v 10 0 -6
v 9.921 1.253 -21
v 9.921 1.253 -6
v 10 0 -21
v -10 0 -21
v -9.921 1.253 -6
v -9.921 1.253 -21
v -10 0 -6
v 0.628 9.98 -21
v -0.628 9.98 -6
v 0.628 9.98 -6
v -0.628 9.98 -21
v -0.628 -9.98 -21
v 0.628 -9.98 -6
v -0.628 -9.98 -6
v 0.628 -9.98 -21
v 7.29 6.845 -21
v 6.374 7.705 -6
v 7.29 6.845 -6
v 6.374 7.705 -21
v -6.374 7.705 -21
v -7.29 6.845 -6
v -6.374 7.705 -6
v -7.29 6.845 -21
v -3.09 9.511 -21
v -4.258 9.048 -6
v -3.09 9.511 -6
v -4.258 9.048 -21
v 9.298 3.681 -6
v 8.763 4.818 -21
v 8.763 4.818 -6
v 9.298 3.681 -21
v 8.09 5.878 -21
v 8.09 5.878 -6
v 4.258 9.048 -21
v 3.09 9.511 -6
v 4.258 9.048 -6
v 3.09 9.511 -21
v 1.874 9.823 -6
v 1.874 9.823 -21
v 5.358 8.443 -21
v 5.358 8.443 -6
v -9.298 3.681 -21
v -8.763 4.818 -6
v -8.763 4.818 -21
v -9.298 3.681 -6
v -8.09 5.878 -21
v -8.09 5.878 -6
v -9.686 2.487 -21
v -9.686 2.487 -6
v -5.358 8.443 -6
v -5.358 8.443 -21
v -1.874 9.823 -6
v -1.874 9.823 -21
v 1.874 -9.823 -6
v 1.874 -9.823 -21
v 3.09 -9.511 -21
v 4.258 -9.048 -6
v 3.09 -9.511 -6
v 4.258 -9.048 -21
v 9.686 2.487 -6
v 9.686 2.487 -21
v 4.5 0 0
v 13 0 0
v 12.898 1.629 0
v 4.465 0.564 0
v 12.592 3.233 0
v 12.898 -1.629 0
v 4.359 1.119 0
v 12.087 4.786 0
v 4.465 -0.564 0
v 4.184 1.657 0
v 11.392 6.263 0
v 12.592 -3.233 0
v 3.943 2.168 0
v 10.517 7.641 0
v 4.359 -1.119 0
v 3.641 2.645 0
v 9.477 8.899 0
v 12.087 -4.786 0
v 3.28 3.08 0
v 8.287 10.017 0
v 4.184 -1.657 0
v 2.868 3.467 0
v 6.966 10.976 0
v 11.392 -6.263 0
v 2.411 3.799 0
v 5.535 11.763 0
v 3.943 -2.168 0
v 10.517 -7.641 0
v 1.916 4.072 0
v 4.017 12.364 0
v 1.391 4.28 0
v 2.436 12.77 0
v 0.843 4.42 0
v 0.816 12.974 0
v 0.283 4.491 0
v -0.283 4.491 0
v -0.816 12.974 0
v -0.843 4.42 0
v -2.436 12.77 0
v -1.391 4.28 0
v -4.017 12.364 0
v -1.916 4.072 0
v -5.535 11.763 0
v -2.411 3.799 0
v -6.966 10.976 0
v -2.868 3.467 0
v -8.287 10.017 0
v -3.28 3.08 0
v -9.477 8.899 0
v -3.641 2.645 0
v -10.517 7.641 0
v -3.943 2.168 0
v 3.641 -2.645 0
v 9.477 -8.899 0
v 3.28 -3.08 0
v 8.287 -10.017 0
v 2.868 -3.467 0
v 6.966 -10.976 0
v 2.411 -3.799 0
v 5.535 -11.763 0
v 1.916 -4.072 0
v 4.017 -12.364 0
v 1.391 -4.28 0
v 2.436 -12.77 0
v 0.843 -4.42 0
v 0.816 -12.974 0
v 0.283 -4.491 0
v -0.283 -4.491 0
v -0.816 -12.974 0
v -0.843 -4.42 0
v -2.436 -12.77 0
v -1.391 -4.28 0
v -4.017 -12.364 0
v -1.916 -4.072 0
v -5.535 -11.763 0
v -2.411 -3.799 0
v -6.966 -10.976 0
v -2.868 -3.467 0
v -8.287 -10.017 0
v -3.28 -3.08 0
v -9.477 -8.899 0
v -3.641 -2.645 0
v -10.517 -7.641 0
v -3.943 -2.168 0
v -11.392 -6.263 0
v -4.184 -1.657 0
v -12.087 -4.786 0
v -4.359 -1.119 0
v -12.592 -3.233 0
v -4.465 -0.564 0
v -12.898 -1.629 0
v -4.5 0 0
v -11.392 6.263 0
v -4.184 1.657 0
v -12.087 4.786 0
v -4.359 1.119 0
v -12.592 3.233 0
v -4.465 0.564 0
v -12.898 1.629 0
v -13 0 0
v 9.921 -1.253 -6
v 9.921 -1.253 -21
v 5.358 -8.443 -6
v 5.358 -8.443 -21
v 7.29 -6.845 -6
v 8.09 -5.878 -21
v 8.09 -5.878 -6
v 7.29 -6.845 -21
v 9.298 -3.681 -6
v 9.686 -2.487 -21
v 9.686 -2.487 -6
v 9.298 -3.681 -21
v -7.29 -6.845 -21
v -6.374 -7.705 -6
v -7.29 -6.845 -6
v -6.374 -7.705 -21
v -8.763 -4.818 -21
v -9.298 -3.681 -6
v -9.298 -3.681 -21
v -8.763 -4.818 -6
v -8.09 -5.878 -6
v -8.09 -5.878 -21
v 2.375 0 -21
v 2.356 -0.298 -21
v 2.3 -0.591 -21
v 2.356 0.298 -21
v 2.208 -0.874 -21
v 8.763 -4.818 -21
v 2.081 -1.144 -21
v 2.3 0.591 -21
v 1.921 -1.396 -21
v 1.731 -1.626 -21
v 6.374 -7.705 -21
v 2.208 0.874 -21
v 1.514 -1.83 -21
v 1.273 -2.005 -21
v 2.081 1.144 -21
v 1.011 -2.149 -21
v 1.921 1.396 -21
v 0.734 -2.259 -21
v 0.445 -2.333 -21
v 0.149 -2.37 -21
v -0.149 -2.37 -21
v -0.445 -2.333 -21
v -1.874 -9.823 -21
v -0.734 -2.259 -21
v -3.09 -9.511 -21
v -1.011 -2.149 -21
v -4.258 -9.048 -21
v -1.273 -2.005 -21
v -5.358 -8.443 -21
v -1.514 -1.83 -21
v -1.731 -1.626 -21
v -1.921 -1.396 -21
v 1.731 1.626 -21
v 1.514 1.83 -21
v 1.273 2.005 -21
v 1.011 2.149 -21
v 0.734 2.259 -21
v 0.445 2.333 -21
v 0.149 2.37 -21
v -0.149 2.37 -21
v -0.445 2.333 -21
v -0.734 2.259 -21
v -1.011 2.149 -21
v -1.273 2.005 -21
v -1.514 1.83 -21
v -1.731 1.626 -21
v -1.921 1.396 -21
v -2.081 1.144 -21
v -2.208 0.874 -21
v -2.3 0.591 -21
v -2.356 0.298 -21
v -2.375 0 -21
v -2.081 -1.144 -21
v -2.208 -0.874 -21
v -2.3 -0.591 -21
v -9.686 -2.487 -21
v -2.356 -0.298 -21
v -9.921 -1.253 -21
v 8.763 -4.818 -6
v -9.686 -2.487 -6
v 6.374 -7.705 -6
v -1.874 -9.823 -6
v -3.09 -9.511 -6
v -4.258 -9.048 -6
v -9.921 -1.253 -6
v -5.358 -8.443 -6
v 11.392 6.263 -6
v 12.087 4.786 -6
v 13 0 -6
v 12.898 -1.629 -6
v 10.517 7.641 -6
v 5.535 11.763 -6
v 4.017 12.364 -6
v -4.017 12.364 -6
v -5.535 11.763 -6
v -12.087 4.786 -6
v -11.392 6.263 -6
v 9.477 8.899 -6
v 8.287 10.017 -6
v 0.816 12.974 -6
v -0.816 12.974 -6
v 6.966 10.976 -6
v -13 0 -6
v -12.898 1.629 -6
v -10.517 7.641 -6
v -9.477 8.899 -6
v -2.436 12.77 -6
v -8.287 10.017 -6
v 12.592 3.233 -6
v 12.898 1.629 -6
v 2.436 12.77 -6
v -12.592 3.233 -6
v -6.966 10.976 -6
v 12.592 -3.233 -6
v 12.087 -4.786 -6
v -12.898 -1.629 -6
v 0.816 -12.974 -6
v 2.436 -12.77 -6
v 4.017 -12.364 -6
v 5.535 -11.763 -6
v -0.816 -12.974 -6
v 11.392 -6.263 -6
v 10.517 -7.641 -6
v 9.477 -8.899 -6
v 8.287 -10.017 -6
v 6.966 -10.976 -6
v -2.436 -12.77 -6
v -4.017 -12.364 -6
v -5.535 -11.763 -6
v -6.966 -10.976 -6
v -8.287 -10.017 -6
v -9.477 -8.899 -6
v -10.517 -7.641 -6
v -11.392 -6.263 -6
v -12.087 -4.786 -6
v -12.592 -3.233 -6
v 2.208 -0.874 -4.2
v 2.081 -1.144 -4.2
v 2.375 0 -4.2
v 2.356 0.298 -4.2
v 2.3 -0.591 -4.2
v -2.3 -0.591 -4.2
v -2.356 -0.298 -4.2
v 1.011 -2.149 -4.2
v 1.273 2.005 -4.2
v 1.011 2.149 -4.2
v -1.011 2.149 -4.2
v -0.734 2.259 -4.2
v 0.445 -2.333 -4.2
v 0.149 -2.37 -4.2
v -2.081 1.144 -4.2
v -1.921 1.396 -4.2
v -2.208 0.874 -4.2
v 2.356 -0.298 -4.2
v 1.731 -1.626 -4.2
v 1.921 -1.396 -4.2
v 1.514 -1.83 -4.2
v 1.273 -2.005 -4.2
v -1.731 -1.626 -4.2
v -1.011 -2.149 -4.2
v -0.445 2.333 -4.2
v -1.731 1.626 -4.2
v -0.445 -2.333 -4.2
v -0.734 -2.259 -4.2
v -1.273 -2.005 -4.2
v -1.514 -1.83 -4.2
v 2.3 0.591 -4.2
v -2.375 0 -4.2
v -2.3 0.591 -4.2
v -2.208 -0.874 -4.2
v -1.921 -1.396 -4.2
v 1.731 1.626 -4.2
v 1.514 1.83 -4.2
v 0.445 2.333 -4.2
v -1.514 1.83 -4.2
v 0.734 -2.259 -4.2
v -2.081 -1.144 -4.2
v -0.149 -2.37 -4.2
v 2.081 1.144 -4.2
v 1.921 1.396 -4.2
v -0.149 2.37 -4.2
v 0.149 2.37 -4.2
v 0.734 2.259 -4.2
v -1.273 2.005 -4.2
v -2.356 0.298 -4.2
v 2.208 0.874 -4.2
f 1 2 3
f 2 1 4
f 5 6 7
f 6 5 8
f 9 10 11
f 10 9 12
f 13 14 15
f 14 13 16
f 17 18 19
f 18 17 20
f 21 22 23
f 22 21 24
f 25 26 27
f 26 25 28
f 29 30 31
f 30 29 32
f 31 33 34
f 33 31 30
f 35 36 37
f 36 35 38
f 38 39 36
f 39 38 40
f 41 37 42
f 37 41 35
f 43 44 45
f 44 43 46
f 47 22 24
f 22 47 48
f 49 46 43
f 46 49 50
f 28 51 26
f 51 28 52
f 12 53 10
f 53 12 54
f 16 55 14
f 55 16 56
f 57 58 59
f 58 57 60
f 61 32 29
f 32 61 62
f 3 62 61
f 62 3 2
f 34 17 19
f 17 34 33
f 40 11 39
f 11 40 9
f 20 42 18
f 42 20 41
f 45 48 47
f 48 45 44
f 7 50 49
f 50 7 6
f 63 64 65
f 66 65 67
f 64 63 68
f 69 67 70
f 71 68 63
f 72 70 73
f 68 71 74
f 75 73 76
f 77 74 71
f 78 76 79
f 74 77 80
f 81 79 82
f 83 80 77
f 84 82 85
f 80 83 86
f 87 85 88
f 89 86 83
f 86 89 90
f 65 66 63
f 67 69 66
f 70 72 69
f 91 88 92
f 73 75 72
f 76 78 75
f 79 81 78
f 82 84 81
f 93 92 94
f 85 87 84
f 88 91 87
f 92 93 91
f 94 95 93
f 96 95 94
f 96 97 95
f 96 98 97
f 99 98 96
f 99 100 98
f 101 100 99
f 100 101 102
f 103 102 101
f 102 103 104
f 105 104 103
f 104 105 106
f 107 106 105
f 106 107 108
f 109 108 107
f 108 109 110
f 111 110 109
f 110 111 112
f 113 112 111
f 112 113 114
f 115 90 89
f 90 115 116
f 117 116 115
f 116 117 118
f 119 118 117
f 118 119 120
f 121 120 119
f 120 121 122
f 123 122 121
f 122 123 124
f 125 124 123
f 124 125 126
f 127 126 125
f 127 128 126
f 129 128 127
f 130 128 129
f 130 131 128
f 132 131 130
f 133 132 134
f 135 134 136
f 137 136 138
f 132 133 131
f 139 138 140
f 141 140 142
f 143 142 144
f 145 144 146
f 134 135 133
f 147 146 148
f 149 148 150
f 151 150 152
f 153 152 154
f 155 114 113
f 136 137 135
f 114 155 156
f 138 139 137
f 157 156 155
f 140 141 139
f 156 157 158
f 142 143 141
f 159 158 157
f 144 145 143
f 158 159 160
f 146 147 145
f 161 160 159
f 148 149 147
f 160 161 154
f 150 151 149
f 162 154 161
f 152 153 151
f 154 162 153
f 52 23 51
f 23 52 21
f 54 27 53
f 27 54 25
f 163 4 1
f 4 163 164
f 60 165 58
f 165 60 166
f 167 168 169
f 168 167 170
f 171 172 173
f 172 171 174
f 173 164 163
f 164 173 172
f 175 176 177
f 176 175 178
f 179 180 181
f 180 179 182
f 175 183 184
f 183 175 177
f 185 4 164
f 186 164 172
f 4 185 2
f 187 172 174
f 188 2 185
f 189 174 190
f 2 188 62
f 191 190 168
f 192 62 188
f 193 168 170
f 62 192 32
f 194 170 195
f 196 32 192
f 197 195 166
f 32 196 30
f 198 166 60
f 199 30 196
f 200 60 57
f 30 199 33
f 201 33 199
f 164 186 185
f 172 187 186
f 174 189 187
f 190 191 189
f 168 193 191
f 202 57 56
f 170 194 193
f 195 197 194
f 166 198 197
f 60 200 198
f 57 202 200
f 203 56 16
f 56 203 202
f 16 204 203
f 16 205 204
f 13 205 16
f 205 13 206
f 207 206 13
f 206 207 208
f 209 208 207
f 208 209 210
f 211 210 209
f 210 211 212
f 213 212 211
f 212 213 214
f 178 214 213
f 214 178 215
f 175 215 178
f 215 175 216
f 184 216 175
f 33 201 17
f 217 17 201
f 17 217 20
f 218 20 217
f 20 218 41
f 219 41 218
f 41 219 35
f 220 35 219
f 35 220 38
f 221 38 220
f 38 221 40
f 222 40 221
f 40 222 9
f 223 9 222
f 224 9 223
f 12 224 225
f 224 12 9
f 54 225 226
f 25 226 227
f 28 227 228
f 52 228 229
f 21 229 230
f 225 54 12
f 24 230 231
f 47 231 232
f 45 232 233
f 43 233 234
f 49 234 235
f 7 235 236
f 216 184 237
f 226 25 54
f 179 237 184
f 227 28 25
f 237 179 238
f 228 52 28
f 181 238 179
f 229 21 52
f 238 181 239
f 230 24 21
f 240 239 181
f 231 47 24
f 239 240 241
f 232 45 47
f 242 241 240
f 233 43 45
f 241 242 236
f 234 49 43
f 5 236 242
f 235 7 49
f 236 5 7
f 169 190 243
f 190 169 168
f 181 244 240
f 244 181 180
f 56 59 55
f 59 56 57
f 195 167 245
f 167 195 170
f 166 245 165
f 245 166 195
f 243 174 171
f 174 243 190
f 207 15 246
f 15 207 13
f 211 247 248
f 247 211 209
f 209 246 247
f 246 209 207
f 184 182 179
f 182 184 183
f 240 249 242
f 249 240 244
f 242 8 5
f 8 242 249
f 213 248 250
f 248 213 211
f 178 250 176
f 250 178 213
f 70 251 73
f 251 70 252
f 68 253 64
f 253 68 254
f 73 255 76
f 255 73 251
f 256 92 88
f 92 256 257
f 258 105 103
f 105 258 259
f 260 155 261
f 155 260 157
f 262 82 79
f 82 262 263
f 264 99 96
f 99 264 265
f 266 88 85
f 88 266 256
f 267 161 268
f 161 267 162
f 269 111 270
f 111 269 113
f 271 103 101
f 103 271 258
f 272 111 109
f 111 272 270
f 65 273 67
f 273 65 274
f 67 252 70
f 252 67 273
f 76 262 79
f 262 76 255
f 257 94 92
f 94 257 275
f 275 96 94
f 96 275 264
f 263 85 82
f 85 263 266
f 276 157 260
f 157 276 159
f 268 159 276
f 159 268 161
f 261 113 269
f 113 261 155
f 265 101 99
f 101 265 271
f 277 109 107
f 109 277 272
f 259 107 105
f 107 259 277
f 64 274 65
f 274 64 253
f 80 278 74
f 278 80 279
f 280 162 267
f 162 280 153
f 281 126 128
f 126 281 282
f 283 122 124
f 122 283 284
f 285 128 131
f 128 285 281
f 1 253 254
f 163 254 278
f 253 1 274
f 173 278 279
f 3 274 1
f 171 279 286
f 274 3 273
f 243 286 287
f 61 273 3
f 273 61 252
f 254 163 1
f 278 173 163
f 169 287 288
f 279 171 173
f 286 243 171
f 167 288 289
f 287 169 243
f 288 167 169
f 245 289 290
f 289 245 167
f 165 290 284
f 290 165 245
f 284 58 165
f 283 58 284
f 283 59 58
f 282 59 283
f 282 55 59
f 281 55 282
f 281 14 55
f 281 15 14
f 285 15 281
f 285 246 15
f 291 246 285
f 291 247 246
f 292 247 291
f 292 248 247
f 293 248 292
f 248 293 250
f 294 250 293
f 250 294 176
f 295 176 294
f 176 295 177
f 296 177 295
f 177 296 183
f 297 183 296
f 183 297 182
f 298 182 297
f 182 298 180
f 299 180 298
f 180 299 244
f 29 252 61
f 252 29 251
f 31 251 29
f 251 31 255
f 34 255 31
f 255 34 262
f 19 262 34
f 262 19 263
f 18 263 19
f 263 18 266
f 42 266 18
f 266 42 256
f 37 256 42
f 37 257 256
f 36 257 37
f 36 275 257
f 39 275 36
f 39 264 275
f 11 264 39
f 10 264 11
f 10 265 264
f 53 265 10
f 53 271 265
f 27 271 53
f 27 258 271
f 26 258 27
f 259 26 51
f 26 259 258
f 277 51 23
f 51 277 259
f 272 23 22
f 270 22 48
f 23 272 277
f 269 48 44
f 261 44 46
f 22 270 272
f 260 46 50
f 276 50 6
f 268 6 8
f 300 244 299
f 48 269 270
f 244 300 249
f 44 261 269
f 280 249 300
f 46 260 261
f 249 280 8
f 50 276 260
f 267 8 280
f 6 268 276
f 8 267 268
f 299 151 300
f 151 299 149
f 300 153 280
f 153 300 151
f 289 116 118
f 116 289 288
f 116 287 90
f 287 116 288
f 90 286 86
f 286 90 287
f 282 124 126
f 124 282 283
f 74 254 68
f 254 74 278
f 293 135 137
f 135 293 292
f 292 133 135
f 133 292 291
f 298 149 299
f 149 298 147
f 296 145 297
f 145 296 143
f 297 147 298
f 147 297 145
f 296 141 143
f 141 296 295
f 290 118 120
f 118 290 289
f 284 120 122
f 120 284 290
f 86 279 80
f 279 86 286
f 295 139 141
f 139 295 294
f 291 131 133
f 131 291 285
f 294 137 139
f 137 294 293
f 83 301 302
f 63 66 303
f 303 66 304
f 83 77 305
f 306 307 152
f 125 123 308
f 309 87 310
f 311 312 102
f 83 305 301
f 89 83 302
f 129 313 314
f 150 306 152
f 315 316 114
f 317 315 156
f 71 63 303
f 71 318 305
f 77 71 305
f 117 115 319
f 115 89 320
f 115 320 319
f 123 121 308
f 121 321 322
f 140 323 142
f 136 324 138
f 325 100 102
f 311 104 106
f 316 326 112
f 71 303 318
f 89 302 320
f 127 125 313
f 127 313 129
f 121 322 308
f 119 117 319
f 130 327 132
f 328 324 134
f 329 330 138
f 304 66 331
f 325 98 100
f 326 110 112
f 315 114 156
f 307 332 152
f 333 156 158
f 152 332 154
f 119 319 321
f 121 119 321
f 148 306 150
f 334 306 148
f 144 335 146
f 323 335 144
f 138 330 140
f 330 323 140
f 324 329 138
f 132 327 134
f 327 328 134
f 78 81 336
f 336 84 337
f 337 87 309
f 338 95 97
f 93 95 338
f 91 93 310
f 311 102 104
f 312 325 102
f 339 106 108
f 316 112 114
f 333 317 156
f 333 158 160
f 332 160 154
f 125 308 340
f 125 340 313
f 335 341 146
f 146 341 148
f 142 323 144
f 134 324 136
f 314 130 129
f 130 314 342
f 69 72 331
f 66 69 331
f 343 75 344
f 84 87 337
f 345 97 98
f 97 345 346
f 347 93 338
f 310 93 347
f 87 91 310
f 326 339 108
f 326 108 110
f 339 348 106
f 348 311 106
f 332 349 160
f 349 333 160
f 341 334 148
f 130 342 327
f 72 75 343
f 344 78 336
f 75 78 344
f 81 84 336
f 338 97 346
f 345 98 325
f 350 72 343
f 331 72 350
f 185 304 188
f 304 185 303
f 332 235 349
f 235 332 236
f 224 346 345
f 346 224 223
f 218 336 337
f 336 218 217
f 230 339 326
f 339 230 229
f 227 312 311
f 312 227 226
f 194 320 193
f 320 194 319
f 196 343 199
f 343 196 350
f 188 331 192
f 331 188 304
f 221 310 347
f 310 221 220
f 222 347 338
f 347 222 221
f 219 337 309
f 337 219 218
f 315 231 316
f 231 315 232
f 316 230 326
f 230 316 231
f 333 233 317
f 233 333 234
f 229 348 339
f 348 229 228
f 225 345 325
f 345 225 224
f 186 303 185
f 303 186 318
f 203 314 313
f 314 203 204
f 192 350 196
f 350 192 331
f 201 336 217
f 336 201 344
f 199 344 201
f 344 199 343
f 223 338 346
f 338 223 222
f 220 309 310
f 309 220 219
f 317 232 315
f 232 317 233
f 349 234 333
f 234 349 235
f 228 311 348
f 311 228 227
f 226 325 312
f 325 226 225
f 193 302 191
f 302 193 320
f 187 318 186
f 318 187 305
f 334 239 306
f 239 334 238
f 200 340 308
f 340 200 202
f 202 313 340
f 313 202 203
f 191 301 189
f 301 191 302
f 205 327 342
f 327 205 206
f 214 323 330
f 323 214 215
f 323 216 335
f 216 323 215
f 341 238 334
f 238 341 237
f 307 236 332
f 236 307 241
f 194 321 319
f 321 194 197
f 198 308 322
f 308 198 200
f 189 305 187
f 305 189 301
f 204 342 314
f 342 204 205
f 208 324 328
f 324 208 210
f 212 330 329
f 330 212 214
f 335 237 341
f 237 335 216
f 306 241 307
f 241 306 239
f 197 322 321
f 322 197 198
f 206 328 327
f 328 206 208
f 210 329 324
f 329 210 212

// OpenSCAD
$fn = 50;


difference() {
	union() {
		translate(v = [0, 0, -21.0000000000]) {
			cylinder(h = 21, r = 10.0000000000);
		}
		translate(v = [0, 0, -6.0000000000]) {
			cylinder(h = 6, r = 13.0000000000);
		}
	}
	union() {
		translate(v = [0, 0, 0]) {
			rotate(a = [0, 0, 0]) {
				difference() {
					union() {
						#translate(v = [0, 0, -21.0000000000]) {
							cylinder(h = 21, r = 2.2500000000);
						}
						#translate(v = [0, 0, -4.2000000000]) {
							cylinder(h = 4.2000000000, r1 = 2.3750000000, r2 = 4.5000000000);
						}
						#translate(v = [0, 0, -21.0000000000]) {
							cylinder(h = 21, r = 2.3750000000);
						}
						#translate(v = [0, 0, -21.0000000000]) {
							cylinder(h = 21, r = 2.2500000000);
						}
					}
					union();
				}
			}
		}
	}
}
